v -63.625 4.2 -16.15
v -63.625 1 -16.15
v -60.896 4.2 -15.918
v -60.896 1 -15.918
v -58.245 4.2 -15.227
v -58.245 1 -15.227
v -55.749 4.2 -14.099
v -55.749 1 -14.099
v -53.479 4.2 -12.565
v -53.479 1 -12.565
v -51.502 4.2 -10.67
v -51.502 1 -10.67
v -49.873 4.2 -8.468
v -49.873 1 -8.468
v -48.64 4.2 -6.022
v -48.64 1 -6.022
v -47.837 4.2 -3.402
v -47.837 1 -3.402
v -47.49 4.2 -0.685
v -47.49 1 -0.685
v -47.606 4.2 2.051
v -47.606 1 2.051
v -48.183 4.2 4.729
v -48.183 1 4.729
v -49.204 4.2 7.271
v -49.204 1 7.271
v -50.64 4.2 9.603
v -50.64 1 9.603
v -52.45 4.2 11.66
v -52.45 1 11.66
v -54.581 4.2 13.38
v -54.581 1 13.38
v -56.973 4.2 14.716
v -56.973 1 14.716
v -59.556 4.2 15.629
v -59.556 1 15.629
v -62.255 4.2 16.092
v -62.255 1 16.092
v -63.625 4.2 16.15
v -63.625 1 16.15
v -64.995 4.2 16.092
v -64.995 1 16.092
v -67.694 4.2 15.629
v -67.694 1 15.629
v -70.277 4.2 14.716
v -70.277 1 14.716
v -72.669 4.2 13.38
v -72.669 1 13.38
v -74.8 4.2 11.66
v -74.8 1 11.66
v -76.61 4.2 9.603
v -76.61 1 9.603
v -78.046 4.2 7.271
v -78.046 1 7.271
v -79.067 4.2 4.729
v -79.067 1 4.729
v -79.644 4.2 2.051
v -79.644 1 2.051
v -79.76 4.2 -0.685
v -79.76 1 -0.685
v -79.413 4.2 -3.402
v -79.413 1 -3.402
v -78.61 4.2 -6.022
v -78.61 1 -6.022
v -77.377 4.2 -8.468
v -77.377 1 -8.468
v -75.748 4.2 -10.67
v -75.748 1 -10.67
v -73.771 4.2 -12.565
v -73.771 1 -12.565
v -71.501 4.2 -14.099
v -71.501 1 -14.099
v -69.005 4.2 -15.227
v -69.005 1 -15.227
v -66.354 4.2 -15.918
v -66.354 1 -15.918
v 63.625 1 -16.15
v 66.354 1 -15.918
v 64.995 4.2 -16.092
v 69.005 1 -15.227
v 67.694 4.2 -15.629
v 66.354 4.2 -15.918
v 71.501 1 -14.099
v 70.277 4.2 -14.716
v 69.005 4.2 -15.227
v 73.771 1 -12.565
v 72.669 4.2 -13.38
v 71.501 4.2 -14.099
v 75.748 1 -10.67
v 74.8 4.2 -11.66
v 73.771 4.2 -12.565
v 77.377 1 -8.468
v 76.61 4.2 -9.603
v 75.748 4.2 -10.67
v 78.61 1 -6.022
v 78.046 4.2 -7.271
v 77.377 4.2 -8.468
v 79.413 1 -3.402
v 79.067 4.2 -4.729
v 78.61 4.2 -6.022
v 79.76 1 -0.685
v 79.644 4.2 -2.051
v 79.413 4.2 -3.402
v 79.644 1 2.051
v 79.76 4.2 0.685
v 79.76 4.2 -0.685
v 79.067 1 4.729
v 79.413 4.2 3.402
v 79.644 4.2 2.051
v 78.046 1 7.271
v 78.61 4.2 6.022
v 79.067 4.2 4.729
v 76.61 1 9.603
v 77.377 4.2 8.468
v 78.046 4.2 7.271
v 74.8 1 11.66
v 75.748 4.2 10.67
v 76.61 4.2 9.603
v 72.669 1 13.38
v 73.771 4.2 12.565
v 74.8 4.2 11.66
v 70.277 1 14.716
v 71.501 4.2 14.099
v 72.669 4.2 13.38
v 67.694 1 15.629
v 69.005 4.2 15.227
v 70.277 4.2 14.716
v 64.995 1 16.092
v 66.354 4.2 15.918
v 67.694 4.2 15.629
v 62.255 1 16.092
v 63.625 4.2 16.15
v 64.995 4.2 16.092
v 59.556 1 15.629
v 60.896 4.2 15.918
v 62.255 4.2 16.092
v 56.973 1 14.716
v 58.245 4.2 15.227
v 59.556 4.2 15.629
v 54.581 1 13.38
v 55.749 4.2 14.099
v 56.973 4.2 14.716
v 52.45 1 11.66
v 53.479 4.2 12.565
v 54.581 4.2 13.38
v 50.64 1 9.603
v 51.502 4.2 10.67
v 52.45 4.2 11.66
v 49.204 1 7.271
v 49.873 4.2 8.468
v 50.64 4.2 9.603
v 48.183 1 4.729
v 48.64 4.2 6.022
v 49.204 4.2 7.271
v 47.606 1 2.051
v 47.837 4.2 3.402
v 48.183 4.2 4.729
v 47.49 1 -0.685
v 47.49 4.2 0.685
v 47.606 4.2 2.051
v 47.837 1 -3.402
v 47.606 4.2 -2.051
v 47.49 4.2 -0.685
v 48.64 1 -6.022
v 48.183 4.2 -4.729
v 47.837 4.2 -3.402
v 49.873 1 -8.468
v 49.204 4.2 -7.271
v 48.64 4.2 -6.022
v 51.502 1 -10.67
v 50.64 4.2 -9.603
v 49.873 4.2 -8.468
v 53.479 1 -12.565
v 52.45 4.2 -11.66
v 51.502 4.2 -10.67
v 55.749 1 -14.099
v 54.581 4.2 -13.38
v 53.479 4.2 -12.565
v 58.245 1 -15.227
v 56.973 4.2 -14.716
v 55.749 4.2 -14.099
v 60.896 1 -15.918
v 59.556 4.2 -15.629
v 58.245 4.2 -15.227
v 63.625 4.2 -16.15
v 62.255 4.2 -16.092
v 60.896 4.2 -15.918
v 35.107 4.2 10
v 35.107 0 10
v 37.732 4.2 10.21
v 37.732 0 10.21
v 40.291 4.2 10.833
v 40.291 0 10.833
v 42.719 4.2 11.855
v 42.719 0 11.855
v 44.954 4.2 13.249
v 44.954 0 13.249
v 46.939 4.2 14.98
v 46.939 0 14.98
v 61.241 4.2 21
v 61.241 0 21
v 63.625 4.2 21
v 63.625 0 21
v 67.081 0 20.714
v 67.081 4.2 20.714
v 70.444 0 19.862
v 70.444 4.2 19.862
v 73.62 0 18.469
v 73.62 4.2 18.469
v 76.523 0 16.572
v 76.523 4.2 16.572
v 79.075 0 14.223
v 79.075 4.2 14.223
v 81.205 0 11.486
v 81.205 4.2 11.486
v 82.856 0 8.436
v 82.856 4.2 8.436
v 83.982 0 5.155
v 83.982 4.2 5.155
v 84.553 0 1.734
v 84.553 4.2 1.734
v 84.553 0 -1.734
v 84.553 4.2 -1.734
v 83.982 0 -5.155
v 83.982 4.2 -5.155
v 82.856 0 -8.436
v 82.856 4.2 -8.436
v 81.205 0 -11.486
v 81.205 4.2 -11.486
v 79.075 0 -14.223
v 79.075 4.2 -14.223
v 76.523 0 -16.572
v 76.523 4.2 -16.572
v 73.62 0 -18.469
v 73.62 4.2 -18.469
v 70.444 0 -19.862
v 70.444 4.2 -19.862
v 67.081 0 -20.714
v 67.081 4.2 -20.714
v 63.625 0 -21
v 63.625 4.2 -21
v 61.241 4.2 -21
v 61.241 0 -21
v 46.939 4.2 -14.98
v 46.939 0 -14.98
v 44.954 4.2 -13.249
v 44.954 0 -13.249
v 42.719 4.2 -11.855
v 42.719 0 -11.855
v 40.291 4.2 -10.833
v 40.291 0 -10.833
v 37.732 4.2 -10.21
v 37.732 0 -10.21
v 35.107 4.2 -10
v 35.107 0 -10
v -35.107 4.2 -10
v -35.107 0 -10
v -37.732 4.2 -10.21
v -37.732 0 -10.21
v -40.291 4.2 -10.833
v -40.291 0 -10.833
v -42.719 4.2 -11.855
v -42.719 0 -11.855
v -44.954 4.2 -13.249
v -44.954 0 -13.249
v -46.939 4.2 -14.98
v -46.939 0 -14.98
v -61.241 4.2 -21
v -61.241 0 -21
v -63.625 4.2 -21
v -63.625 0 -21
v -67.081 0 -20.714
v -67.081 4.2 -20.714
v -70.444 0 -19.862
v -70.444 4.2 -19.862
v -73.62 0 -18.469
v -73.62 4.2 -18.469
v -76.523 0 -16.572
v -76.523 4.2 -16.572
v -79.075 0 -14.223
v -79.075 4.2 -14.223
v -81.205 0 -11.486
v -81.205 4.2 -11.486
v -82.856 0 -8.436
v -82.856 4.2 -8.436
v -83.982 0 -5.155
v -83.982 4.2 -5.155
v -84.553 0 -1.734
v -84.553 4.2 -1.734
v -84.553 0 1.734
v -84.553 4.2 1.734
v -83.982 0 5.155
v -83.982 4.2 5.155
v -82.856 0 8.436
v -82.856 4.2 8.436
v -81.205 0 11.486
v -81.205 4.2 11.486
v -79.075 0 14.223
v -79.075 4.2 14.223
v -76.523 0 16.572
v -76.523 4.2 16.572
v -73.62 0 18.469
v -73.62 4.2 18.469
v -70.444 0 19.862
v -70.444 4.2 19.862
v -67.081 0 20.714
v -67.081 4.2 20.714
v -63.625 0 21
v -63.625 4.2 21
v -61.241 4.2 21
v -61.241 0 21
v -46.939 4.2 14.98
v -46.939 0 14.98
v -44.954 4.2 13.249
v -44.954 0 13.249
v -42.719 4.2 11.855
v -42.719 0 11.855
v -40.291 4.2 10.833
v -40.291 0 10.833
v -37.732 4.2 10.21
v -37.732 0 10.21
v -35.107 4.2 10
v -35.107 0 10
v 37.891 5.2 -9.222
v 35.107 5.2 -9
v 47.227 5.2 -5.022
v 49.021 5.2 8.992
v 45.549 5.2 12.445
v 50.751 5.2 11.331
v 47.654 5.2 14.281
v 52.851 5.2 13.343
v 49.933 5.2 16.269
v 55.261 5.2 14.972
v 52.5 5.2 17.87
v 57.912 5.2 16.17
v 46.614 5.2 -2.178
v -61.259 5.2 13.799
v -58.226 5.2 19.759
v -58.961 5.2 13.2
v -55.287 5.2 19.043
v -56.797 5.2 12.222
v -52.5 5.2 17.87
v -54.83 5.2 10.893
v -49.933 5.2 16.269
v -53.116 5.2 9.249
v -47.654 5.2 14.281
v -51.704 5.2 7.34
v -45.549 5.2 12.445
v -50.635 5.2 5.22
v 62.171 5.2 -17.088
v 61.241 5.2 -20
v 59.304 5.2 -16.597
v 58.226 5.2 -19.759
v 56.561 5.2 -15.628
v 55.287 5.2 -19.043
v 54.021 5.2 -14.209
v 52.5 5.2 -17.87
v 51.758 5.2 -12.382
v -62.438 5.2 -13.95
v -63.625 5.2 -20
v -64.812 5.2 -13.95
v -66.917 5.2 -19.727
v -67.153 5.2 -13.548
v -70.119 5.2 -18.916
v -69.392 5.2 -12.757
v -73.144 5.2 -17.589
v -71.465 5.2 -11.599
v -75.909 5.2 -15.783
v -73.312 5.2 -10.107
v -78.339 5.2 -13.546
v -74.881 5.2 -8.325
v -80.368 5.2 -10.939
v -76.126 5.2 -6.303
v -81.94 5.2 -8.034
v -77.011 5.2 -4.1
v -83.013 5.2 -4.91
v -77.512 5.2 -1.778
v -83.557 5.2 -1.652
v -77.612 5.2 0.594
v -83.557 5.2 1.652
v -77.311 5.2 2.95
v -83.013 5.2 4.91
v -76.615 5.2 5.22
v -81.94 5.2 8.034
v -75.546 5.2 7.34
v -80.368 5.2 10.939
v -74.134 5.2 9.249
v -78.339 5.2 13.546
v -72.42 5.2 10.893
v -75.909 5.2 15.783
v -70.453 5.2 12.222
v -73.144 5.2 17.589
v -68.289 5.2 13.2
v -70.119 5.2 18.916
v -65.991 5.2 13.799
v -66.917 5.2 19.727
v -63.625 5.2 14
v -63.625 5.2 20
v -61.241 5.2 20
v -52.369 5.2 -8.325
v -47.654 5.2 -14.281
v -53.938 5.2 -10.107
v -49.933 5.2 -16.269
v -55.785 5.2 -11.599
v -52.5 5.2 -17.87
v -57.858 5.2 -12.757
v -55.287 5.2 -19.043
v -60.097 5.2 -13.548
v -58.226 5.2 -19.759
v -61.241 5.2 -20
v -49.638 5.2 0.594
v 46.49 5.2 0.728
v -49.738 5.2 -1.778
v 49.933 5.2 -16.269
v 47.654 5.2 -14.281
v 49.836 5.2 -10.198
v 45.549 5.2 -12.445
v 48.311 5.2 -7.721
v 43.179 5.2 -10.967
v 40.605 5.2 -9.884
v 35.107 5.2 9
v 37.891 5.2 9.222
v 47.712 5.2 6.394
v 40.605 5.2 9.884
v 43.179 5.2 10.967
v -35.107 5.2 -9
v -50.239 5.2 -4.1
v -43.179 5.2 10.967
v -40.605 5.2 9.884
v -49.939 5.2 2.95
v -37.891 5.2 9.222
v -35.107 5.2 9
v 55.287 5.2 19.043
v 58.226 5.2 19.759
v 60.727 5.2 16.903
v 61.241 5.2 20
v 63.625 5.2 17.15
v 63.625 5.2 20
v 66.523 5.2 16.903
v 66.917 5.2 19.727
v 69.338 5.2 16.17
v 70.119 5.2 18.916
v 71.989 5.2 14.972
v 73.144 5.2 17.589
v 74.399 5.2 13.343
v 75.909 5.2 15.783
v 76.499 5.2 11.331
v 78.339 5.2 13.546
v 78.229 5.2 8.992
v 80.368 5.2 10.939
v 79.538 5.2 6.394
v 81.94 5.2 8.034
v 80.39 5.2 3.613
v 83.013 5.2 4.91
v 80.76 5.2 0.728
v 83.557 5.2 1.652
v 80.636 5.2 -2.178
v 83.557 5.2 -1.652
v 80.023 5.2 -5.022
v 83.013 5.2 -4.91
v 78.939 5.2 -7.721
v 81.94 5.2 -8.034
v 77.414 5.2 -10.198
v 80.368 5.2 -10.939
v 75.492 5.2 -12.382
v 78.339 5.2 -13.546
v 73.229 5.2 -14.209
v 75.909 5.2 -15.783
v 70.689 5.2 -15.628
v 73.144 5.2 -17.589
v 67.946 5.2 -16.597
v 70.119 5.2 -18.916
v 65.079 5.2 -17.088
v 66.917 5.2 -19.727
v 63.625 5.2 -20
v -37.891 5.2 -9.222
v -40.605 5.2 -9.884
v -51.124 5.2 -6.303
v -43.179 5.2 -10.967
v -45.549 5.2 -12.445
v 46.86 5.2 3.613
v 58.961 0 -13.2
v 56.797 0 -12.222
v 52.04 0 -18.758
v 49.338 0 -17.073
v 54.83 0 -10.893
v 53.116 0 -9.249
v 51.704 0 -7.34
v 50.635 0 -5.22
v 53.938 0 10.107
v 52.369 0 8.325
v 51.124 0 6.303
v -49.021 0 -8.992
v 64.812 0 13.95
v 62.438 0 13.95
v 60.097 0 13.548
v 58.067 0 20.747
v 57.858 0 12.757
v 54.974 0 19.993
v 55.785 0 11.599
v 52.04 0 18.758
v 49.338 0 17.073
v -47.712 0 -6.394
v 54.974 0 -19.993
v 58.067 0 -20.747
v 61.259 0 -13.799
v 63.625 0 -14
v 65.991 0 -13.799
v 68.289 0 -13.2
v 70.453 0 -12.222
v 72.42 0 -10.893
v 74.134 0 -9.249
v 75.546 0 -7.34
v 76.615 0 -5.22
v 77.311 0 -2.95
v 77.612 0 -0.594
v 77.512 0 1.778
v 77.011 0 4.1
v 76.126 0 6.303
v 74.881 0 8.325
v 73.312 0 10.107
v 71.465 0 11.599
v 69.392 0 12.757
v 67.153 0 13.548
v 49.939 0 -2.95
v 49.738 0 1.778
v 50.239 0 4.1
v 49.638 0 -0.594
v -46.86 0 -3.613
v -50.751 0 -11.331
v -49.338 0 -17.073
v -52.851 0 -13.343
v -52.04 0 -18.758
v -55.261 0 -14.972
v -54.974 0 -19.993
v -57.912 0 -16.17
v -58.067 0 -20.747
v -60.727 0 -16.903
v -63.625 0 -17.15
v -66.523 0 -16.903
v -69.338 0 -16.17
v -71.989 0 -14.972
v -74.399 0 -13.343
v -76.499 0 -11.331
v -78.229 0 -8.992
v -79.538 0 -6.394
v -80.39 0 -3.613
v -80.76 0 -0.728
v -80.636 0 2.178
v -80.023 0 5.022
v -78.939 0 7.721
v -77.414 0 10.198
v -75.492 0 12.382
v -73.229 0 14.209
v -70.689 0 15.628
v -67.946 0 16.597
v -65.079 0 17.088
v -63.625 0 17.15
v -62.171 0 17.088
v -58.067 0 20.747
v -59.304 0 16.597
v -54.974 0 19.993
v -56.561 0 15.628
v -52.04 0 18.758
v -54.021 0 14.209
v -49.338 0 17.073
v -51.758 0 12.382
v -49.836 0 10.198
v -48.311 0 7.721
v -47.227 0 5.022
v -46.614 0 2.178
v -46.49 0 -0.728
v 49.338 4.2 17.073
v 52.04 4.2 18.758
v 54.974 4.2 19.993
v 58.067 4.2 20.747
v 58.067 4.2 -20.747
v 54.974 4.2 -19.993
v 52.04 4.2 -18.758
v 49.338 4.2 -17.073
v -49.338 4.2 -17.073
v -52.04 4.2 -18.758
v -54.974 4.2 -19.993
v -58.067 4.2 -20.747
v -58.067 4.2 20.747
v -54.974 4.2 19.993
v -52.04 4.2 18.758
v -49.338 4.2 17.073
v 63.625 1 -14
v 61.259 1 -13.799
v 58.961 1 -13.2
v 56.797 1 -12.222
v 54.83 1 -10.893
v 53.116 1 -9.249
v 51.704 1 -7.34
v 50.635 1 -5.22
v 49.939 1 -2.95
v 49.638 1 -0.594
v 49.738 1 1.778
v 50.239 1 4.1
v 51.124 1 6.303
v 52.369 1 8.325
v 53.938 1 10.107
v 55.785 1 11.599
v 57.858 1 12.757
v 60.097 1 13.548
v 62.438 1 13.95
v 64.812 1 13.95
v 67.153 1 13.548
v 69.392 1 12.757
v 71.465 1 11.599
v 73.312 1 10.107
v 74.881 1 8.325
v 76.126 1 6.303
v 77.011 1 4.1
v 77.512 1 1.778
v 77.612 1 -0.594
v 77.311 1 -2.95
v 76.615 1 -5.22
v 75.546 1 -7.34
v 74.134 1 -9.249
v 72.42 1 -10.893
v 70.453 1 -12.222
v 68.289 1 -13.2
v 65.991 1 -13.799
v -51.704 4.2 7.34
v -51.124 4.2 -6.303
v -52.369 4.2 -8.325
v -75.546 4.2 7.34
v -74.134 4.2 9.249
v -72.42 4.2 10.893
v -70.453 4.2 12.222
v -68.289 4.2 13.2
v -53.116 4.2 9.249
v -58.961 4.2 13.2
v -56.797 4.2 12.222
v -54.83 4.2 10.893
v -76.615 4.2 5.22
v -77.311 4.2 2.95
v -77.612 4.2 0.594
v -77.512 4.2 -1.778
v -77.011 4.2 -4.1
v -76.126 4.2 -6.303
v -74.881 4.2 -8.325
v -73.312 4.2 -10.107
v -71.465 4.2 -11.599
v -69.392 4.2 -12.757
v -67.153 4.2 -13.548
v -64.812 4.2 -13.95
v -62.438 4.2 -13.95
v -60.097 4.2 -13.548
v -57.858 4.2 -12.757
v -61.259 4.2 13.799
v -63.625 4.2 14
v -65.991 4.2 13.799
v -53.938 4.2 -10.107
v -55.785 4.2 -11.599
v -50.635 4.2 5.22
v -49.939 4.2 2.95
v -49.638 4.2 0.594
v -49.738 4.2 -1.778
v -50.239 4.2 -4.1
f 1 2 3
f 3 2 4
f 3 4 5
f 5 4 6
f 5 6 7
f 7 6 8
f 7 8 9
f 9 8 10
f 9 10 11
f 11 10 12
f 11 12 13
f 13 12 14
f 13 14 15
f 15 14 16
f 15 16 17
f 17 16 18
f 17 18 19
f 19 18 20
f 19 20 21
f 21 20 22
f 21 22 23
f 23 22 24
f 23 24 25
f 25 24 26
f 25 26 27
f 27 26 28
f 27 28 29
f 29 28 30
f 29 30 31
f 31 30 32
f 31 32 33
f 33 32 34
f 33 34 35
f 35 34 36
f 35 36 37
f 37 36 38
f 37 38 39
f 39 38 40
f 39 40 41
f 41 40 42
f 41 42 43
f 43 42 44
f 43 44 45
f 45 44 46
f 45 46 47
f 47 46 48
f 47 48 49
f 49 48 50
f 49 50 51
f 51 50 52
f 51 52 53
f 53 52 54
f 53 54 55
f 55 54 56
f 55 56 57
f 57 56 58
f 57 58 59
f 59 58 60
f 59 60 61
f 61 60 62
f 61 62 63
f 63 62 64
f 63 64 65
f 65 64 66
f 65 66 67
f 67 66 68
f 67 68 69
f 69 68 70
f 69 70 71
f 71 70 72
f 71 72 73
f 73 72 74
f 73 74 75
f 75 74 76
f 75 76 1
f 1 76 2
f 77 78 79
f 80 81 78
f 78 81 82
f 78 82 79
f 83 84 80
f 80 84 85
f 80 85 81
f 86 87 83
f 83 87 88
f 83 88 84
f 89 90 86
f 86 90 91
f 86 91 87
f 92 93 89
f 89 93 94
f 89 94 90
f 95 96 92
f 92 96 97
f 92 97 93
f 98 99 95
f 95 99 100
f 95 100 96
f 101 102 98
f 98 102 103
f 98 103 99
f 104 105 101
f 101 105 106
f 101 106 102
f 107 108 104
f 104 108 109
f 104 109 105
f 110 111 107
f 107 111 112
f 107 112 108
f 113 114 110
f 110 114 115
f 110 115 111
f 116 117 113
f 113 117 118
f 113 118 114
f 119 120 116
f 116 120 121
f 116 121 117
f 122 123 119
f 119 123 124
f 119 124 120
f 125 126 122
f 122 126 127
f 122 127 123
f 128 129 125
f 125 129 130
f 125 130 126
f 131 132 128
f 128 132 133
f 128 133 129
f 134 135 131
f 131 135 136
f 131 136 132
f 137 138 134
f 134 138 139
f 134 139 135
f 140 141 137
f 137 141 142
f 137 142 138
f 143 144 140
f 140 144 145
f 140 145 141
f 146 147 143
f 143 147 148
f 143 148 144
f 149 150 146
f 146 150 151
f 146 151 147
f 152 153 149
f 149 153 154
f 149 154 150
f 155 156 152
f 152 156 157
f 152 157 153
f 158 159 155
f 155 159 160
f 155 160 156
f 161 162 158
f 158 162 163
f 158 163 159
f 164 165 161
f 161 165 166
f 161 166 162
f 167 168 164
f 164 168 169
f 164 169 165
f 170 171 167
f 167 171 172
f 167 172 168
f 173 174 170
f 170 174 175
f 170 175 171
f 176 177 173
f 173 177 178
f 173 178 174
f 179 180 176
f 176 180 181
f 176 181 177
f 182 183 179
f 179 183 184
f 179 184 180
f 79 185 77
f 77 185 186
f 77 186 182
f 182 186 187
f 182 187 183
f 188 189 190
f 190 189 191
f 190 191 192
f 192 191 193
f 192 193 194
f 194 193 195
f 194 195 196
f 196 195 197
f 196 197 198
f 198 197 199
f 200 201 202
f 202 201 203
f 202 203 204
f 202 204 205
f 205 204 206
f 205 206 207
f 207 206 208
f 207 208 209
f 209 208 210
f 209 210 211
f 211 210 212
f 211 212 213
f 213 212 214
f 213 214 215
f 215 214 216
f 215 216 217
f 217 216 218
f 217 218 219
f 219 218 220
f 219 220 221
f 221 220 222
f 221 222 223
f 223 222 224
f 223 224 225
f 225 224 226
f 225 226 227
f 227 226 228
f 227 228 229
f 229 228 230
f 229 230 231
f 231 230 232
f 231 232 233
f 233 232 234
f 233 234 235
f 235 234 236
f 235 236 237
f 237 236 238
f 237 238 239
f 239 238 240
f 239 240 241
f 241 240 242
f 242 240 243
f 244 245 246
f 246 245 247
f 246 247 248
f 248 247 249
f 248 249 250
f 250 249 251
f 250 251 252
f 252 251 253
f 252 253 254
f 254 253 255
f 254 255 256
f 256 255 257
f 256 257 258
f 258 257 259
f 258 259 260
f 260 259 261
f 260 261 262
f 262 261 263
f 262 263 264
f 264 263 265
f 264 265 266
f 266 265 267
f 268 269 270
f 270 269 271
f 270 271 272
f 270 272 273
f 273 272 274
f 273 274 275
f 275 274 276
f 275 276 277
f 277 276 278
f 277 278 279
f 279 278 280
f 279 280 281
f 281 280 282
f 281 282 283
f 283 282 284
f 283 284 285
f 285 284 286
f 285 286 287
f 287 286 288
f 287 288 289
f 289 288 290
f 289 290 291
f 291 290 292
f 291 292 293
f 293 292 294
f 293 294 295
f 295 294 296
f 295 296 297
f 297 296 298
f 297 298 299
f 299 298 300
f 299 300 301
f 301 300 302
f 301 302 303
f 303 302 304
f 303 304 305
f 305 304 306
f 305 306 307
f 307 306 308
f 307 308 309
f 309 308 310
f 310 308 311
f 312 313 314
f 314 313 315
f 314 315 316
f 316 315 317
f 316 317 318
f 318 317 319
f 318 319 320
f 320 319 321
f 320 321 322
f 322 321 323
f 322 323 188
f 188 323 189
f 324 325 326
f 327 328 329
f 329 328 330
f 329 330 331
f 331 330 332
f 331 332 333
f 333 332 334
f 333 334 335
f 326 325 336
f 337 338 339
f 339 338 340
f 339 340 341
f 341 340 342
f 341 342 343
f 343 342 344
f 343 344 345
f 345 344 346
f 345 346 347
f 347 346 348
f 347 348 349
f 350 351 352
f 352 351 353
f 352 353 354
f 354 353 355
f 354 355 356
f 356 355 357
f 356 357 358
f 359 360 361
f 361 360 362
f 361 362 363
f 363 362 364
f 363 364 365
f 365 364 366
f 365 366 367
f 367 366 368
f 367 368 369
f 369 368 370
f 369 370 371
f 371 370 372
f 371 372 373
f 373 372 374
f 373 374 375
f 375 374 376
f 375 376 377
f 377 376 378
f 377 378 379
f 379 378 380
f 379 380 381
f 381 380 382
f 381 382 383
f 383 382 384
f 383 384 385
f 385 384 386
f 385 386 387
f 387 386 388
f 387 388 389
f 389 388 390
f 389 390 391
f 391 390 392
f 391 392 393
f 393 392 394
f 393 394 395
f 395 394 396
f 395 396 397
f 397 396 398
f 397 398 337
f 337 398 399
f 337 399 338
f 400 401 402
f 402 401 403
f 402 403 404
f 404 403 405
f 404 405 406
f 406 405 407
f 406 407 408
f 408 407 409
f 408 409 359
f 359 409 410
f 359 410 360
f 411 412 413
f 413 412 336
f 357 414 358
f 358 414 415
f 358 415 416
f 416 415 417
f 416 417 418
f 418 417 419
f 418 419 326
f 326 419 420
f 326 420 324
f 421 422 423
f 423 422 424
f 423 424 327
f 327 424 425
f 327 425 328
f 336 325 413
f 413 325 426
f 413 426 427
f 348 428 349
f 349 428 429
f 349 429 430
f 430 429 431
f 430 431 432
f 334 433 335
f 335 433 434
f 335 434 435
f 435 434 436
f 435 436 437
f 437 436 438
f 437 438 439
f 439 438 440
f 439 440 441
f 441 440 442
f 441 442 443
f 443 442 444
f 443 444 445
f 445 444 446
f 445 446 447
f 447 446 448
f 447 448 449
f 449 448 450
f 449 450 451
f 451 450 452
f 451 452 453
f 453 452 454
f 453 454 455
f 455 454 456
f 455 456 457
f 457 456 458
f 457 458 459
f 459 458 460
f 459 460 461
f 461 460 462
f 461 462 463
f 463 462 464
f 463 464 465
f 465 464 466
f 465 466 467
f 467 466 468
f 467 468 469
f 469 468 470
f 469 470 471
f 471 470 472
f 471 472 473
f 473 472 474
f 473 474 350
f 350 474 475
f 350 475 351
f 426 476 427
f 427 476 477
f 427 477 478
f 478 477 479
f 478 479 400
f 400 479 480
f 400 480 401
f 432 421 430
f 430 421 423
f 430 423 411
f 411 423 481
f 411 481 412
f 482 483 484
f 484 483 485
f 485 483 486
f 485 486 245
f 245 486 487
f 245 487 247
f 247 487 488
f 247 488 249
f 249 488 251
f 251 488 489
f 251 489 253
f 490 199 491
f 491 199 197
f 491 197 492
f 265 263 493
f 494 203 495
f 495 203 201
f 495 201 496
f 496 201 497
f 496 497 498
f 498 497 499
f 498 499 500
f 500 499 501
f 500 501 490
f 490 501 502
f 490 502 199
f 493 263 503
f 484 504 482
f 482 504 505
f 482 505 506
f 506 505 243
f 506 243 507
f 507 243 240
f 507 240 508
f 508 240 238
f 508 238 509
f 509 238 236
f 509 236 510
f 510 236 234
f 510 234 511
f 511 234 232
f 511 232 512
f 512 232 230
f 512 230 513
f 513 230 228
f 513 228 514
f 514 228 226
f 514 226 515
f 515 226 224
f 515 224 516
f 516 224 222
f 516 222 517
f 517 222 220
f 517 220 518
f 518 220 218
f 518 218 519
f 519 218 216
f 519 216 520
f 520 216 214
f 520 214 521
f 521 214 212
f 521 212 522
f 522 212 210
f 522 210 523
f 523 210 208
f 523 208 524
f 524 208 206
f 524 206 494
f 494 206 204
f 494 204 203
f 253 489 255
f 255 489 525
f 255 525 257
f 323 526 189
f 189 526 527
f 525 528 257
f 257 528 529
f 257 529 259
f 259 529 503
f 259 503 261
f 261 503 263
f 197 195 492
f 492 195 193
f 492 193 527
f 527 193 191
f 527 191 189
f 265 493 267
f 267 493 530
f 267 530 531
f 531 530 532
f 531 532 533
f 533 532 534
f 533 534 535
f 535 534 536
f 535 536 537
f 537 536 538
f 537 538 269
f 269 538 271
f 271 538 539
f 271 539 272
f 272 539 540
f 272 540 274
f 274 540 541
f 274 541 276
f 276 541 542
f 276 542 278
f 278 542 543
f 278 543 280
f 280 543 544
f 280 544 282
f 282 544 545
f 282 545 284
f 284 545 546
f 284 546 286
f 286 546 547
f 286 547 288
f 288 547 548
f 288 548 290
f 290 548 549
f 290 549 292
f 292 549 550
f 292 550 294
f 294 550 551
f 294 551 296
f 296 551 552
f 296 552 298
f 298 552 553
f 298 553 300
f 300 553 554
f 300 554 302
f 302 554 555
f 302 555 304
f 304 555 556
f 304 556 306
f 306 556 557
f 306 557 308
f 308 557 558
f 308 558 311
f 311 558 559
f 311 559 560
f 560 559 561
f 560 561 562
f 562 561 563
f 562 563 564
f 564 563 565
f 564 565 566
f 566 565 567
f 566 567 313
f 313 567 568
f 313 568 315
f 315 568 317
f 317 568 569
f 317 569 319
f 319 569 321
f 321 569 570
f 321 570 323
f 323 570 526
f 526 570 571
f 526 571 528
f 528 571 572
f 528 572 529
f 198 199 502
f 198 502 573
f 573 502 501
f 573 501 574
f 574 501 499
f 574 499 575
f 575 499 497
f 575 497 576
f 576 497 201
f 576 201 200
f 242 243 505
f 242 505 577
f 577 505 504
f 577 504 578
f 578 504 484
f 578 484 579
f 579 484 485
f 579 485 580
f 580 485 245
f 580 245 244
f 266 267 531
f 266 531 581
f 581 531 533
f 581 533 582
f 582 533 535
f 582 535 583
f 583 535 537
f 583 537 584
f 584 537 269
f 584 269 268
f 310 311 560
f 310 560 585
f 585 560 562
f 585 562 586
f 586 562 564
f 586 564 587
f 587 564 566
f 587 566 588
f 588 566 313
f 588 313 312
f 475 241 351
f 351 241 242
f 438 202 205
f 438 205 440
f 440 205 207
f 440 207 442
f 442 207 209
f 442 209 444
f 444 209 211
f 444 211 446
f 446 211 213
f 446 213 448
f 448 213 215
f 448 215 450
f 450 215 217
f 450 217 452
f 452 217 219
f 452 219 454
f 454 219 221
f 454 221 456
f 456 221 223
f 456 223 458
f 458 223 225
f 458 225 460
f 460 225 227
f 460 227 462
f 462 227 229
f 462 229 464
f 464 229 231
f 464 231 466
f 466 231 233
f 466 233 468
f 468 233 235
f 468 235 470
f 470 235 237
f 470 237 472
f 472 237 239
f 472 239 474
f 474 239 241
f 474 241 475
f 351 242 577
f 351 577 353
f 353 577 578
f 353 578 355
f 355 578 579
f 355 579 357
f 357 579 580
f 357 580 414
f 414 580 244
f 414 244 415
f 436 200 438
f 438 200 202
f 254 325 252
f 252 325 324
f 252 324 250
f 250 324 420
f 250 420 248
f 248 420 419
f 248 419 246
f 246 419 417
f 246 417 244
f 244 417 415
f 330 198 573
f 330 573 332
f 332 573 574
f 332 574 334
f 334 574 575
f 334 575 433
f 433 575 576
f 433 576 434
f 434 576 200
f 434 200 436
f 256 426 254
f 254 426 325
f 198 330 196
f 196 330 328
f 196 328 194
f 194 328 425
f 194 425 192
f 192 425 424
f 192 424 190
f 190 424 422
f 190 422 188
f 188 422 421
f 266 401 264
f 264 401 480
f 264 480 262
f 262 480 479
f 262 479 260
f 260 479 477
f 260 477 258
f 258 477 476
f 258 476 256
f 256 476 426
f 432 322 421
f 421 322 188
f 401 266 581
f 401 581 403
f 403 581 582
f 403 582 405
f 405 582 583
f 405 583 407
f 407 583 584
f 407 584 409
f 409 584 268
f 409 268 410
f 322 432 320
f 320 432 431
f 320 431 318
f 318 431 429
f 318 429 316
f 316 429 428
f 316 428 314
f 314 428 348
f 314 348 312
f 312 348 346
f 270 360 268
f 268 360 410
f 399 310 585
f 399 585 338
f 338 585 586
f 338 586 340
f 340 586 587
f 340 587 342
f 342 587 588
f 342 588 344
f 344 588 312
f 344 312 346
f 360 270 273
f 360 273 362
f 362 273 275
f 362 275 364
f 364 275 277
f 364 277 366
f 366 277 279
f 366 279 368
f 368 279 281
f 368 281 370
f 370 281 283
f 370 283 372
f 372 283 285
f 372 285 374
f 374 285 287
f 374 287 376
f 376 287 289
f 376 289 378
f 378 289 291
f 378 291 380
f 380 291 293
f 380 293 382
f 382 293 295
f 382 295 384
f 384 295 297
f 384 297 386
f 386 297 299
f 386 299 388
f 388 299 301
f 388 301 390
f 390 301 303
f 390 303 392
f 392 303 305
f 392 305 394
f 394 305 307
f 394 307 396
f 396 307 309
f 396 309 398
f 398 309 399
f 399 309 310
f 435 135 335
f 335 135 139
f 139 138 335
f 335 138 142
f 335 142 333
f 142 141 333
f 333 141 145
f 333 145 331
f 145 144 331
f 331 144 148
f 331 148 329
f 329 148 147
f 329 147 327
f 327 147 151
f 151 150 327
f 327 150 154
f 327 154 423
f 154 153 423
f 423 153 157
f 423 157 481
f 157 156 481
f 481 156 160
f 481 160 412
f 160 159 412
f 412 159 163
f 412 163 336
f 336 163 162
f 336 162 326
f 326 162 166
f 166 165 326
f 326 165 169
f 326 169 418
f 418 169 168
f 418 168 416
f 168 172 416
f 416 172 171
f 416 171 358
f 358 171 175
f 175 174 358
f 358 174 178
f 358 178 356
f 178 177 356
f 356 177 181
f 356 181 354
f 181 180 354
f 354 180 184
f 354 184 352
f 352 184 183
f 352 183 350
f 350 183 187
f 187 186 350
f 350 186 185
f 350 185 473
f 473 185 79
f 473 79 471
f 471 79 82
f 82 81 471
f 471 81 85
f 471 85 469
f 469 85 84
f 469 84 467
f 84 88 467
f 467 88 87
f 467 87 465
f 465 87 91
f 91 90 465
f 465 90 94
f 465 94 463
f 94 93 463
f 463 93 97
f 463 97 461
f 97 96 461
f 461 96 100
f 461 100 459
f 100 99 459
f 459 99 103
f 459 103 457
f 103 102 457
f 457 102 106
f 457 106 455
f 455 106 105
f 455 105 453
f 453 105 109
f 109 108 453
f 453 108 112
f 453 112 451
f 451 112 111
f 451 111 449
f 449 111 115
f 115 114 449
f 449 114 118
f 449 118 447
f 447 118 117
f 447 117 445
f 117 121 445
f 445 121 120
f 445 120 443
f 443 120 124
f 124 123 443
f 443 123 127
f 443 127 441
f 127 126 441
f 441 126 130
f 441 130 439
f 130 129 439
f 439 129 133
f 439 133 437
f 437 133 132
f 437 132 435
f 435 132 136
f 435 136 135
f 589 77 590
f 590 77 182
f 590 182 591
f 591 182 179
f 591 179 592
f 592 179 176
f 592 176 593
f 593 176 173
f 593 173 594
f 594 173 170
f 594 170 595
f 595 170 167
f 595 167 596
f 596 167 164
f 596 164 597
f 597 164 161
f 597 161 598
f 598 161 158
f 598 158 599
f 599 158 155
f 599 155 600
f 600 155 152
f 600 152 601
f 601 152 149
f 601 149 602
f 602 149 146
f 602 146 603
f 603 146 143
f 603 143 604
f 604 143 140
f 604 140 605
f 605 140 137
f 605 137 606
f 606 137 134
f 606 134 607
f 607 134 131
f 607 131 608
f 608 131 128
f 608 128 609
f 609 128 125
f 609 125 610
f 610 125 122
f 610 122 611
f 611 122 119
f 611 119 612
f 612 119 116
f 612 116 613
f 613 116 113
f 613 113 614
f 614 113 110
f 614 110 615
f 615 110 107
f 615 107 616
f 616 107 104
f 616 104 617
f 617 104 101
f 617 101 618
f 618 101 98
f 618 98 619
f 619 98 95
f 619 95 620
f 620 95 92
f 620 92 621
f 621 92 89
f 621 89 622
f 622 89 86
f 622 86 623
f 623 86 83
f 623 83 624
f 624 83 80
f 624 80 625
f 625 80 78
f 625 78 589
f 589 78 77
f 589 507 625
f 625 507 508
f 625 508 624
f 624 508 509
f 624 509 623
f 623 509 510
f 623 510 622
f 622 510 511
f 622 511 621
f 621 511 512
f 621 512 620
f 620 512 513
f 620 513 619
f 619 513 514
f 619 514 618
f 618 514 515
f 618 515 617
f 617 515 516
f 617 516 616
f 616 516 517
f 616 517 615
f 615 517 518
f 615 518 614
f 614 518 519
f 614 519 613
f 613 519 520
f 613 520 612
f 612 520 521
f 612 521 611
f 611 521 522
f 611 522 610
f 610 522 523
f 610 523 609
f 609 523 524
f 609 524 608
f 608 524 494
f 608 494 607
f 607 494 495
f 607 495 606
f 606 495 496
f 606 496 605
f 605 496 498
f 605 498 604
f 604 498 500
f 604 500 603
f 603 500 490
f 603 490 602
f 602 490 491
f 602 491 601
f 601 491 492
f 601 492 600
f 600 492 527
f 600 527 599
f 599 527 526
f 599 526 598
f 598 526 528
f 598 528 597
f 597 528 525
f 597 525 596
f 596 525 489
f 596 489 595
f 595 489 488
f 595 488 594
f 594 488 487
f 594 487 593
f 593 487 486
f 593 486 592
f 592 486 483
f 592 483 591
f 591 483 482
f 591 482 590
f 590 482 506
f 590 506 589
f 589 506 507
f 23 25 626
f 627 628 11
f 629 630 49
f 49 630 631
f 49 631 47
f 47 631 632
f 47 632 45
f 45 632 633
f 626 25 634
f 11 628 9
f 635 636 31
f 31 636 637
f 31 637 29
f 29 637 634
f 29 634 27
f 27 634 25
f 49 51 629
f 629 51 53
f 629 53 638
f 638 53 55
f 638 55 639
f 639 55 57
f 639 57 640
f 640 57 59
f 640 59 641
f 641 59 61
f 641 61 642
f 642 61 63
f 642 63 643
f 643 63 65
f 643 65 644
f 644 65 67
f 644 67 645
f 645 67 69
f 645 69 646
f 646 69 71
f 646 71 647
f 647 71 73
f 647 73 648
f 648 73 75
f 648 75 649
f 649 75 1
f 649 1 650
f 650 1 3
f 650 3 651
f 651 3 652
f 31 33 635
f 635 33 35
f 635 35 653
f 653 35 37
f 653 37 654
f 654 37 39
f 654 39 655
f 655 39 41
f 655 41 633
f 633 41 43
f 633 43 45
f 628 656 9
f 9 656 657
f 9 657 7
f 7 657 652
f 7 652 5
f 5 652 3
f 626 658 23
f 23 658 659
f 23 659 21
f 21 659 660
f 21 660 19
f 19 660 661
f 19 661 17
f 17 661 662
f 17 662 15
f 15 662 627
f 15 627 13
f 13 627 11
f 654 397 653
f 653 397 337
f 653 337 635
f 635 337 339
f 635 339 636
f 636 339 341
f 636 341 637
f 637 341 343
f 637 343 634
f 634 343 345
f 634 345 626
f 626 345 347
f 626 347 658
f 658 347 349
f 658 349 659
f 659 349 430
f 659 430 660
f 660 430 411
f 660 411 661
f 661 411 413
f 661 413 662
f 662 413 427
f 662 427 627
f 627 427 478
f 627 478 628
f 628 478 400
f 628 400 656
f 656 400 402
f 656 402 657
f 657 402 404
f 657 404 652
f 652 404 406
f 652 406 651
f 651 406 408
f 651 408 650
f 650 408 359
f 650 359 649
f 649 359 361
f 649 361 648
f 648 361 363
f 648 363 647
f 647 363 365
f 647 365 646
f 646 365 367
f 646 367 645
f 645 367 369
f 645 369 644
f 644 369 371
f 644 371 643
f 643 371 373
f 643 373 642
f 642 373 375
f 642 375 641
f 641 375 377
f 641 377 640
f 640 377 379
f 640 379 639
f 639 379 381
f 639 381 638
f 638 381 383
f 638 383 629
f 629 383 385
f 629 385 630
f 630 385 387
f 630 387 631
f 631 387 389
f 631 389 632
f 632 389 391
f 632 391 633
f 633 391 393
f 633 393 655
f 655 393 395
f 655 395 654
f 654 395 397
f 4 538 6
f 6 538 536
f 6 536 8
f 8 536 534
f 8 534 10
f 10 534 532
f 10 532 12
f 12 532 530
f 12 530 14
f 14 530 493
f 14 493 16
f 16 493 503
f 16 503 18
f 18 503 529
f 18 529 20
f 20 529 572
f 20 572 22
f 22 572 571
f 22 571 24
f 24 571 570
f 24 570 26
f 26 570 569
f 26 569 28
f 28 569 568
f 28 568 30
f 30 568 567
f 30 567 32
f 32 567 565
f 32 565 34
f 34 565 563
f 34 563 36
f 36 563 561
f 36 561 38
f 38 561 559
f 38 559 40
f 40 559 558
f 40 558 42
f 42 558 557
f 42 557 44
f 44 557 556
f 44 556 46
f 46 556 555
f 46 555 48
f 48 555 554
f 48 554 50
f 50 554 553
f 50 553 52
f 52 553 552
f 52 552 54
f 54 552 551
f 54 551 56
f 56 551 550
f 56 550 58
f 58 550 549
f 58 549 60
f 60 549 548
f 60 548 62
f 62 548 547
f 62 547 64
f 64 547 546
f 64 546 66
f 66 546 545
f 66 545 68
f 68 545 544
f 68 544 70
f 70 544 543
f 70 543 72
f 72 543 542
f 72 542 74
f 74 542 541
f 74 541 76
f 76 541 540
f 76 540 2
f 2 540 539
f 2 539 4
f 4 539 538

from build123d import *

# Parameters (mm, degrees)
SKETCH1_R           = 16.15
BOSS_EXTRUDE1_DEPTH = 5.2
FILLET1_R           = 20
CHAMFER1_SIZE       = 1
SKETCH2_R           = 19.025242353
SKETCH2_R_2         = 14
BOSS_EXTRUDE2_DEPTH = 1
SKETCH4_R           = 18.71529055
SKETCH4_R_2         = 14
BOSS_EXTRUDE3_DEPTH = 1
CHAMFER2_SIZE       = 1


with BuildPart() as part:
    # Sketch1 → Boss-Extrude1 (new body)
    with BuildSketch(Plane(origin=(0, 0, 0), x_dir=(1, 0, 0), z_dir=(0, 1, 0))):
        with BuildLine():
            Line((50.6952797, -21), (63.625, -21))
            ThreePointArc((63.625, -21), (84.625, 0), (63.625, 21))
            Line((63.625, 21), (50.6952797, 21))
            ThreePointArc((50.6952797, 21), (44.646090821, 13.026866227), (35.106613419, 10))
            Line((35.106613419, 10), (-35.106613419, 10))
            ThreePointArc((-35.106613419, 10), (-44.646090821, 13.026866227), (-50.6952797, 21))
            Line((-50.6952797, 21), (-63.625, 21))
            ThreePointArc((-63.625, 21), (-84.625, 0), (-63.625, -21))
            Line((-63.625, -21), (-50.6952797, -21))
            ThreePointArc((-50.6952797, -21), (-44.646090821, -13.026866227), (-35.106613419, -10))
            Line((-35.106613419, -10), (35.106613419, -10))
            ThreePointArc((35.106613419, -10), (44.646090821, -13.026866227), (50.6952797, -21))
        make_face()
        with Locations((-63.625, 0)):
            Circle(SKETCH1_R, mode=Mode.SUBTRACT)
        with Locations((63.625, 0)):
            Circle(SKETCH1_R, mode=Mode.SUBTRACT)
    extrude(amount=BOSS_EXTRUDE1_DEPTH)

    # Fillet1
    fillet1_edges = [part.edges().sort_by_distance(p)[0] for p in [
        (-50.6952797, 2.6, 21),
        (-50.6952797, 2.6, -21),
        (50.6952797, 2.6, -21),
        (50.6952797, 2.6, 21),
    ]]
    fillet(fillet1_edges, radius=FILLET1_R)

    # Chamfer1
    chamfer1_edges = [part.edges().sort_by_distance(p)[0] for p in [
        (62.433003391, 5.2, 21),
        (84.625, 5.2, 0),
        (62.433003391, 5.2, -21),
        (41.52534742, 5.2, -11.295776268),
        (0, 5.2, -10),
        (41.52534742, 5.2, 11.295776268),
        (-41.52534742, 5.2, -11.295776268),
        (-62.433003391, 5.2, -21),
        (-62.433003391, 5.2, 21),
        (-53.482236449, 5.2, 19.433705079),
        (-53.482236449, 5.2, -19.433705079),
        (-84.625, 5.2, 0),
        (53.482236449, 5.2, -19.433705079),
        (53.482236449, 5.2, 19.433705079),
        (-41.52534742, 5.2, 11.295776268),
        (0, 5.2, 10),
        (47.475, 5.2, 0),
    ]]
    chamfer(chamfer1_edges, length=CHAMFER1_SIZE)

    # Sketch2 → Boss-Extrude2 (add)
    with BuildSketch(Plane.XZ):
        with Locations((63.625, 0)):
            Circle(SKETCH2_R)
        with Locations((63.625, 0)):
            Circle(SKETCH2_R_2, mode=Mode.SUBTRACT)
    extrude(amount=-BOSS_EXTRUDE2_DEPTH)

    # Sketch4 → Boss-Extrude3 (add)
    with BuildSketch(Plane(origin=(0, 5.2, 0), x_dir=(1, 0, 0), z_dir=(0, 1, 0))):
        with Locations((-63.625, 0)):
            Circle(SKETCH4_R)
        with Locations((-63.625, 0)):
            Circle(SKETCH4_R_2, mode=Mode.SUBTRACT)
    extrude(amount=-BOSS_EXTRUDE3_DEPTH)

    # Chamfer2
    chamfer2_edges = [part.edges().sort_by_distance(p)[0] for p in [
        (-79.775, 0, 0),
    ]]
    chamfer(chamfer2_edges, length=CHAMFER2_SIZE)


solid = part.part
